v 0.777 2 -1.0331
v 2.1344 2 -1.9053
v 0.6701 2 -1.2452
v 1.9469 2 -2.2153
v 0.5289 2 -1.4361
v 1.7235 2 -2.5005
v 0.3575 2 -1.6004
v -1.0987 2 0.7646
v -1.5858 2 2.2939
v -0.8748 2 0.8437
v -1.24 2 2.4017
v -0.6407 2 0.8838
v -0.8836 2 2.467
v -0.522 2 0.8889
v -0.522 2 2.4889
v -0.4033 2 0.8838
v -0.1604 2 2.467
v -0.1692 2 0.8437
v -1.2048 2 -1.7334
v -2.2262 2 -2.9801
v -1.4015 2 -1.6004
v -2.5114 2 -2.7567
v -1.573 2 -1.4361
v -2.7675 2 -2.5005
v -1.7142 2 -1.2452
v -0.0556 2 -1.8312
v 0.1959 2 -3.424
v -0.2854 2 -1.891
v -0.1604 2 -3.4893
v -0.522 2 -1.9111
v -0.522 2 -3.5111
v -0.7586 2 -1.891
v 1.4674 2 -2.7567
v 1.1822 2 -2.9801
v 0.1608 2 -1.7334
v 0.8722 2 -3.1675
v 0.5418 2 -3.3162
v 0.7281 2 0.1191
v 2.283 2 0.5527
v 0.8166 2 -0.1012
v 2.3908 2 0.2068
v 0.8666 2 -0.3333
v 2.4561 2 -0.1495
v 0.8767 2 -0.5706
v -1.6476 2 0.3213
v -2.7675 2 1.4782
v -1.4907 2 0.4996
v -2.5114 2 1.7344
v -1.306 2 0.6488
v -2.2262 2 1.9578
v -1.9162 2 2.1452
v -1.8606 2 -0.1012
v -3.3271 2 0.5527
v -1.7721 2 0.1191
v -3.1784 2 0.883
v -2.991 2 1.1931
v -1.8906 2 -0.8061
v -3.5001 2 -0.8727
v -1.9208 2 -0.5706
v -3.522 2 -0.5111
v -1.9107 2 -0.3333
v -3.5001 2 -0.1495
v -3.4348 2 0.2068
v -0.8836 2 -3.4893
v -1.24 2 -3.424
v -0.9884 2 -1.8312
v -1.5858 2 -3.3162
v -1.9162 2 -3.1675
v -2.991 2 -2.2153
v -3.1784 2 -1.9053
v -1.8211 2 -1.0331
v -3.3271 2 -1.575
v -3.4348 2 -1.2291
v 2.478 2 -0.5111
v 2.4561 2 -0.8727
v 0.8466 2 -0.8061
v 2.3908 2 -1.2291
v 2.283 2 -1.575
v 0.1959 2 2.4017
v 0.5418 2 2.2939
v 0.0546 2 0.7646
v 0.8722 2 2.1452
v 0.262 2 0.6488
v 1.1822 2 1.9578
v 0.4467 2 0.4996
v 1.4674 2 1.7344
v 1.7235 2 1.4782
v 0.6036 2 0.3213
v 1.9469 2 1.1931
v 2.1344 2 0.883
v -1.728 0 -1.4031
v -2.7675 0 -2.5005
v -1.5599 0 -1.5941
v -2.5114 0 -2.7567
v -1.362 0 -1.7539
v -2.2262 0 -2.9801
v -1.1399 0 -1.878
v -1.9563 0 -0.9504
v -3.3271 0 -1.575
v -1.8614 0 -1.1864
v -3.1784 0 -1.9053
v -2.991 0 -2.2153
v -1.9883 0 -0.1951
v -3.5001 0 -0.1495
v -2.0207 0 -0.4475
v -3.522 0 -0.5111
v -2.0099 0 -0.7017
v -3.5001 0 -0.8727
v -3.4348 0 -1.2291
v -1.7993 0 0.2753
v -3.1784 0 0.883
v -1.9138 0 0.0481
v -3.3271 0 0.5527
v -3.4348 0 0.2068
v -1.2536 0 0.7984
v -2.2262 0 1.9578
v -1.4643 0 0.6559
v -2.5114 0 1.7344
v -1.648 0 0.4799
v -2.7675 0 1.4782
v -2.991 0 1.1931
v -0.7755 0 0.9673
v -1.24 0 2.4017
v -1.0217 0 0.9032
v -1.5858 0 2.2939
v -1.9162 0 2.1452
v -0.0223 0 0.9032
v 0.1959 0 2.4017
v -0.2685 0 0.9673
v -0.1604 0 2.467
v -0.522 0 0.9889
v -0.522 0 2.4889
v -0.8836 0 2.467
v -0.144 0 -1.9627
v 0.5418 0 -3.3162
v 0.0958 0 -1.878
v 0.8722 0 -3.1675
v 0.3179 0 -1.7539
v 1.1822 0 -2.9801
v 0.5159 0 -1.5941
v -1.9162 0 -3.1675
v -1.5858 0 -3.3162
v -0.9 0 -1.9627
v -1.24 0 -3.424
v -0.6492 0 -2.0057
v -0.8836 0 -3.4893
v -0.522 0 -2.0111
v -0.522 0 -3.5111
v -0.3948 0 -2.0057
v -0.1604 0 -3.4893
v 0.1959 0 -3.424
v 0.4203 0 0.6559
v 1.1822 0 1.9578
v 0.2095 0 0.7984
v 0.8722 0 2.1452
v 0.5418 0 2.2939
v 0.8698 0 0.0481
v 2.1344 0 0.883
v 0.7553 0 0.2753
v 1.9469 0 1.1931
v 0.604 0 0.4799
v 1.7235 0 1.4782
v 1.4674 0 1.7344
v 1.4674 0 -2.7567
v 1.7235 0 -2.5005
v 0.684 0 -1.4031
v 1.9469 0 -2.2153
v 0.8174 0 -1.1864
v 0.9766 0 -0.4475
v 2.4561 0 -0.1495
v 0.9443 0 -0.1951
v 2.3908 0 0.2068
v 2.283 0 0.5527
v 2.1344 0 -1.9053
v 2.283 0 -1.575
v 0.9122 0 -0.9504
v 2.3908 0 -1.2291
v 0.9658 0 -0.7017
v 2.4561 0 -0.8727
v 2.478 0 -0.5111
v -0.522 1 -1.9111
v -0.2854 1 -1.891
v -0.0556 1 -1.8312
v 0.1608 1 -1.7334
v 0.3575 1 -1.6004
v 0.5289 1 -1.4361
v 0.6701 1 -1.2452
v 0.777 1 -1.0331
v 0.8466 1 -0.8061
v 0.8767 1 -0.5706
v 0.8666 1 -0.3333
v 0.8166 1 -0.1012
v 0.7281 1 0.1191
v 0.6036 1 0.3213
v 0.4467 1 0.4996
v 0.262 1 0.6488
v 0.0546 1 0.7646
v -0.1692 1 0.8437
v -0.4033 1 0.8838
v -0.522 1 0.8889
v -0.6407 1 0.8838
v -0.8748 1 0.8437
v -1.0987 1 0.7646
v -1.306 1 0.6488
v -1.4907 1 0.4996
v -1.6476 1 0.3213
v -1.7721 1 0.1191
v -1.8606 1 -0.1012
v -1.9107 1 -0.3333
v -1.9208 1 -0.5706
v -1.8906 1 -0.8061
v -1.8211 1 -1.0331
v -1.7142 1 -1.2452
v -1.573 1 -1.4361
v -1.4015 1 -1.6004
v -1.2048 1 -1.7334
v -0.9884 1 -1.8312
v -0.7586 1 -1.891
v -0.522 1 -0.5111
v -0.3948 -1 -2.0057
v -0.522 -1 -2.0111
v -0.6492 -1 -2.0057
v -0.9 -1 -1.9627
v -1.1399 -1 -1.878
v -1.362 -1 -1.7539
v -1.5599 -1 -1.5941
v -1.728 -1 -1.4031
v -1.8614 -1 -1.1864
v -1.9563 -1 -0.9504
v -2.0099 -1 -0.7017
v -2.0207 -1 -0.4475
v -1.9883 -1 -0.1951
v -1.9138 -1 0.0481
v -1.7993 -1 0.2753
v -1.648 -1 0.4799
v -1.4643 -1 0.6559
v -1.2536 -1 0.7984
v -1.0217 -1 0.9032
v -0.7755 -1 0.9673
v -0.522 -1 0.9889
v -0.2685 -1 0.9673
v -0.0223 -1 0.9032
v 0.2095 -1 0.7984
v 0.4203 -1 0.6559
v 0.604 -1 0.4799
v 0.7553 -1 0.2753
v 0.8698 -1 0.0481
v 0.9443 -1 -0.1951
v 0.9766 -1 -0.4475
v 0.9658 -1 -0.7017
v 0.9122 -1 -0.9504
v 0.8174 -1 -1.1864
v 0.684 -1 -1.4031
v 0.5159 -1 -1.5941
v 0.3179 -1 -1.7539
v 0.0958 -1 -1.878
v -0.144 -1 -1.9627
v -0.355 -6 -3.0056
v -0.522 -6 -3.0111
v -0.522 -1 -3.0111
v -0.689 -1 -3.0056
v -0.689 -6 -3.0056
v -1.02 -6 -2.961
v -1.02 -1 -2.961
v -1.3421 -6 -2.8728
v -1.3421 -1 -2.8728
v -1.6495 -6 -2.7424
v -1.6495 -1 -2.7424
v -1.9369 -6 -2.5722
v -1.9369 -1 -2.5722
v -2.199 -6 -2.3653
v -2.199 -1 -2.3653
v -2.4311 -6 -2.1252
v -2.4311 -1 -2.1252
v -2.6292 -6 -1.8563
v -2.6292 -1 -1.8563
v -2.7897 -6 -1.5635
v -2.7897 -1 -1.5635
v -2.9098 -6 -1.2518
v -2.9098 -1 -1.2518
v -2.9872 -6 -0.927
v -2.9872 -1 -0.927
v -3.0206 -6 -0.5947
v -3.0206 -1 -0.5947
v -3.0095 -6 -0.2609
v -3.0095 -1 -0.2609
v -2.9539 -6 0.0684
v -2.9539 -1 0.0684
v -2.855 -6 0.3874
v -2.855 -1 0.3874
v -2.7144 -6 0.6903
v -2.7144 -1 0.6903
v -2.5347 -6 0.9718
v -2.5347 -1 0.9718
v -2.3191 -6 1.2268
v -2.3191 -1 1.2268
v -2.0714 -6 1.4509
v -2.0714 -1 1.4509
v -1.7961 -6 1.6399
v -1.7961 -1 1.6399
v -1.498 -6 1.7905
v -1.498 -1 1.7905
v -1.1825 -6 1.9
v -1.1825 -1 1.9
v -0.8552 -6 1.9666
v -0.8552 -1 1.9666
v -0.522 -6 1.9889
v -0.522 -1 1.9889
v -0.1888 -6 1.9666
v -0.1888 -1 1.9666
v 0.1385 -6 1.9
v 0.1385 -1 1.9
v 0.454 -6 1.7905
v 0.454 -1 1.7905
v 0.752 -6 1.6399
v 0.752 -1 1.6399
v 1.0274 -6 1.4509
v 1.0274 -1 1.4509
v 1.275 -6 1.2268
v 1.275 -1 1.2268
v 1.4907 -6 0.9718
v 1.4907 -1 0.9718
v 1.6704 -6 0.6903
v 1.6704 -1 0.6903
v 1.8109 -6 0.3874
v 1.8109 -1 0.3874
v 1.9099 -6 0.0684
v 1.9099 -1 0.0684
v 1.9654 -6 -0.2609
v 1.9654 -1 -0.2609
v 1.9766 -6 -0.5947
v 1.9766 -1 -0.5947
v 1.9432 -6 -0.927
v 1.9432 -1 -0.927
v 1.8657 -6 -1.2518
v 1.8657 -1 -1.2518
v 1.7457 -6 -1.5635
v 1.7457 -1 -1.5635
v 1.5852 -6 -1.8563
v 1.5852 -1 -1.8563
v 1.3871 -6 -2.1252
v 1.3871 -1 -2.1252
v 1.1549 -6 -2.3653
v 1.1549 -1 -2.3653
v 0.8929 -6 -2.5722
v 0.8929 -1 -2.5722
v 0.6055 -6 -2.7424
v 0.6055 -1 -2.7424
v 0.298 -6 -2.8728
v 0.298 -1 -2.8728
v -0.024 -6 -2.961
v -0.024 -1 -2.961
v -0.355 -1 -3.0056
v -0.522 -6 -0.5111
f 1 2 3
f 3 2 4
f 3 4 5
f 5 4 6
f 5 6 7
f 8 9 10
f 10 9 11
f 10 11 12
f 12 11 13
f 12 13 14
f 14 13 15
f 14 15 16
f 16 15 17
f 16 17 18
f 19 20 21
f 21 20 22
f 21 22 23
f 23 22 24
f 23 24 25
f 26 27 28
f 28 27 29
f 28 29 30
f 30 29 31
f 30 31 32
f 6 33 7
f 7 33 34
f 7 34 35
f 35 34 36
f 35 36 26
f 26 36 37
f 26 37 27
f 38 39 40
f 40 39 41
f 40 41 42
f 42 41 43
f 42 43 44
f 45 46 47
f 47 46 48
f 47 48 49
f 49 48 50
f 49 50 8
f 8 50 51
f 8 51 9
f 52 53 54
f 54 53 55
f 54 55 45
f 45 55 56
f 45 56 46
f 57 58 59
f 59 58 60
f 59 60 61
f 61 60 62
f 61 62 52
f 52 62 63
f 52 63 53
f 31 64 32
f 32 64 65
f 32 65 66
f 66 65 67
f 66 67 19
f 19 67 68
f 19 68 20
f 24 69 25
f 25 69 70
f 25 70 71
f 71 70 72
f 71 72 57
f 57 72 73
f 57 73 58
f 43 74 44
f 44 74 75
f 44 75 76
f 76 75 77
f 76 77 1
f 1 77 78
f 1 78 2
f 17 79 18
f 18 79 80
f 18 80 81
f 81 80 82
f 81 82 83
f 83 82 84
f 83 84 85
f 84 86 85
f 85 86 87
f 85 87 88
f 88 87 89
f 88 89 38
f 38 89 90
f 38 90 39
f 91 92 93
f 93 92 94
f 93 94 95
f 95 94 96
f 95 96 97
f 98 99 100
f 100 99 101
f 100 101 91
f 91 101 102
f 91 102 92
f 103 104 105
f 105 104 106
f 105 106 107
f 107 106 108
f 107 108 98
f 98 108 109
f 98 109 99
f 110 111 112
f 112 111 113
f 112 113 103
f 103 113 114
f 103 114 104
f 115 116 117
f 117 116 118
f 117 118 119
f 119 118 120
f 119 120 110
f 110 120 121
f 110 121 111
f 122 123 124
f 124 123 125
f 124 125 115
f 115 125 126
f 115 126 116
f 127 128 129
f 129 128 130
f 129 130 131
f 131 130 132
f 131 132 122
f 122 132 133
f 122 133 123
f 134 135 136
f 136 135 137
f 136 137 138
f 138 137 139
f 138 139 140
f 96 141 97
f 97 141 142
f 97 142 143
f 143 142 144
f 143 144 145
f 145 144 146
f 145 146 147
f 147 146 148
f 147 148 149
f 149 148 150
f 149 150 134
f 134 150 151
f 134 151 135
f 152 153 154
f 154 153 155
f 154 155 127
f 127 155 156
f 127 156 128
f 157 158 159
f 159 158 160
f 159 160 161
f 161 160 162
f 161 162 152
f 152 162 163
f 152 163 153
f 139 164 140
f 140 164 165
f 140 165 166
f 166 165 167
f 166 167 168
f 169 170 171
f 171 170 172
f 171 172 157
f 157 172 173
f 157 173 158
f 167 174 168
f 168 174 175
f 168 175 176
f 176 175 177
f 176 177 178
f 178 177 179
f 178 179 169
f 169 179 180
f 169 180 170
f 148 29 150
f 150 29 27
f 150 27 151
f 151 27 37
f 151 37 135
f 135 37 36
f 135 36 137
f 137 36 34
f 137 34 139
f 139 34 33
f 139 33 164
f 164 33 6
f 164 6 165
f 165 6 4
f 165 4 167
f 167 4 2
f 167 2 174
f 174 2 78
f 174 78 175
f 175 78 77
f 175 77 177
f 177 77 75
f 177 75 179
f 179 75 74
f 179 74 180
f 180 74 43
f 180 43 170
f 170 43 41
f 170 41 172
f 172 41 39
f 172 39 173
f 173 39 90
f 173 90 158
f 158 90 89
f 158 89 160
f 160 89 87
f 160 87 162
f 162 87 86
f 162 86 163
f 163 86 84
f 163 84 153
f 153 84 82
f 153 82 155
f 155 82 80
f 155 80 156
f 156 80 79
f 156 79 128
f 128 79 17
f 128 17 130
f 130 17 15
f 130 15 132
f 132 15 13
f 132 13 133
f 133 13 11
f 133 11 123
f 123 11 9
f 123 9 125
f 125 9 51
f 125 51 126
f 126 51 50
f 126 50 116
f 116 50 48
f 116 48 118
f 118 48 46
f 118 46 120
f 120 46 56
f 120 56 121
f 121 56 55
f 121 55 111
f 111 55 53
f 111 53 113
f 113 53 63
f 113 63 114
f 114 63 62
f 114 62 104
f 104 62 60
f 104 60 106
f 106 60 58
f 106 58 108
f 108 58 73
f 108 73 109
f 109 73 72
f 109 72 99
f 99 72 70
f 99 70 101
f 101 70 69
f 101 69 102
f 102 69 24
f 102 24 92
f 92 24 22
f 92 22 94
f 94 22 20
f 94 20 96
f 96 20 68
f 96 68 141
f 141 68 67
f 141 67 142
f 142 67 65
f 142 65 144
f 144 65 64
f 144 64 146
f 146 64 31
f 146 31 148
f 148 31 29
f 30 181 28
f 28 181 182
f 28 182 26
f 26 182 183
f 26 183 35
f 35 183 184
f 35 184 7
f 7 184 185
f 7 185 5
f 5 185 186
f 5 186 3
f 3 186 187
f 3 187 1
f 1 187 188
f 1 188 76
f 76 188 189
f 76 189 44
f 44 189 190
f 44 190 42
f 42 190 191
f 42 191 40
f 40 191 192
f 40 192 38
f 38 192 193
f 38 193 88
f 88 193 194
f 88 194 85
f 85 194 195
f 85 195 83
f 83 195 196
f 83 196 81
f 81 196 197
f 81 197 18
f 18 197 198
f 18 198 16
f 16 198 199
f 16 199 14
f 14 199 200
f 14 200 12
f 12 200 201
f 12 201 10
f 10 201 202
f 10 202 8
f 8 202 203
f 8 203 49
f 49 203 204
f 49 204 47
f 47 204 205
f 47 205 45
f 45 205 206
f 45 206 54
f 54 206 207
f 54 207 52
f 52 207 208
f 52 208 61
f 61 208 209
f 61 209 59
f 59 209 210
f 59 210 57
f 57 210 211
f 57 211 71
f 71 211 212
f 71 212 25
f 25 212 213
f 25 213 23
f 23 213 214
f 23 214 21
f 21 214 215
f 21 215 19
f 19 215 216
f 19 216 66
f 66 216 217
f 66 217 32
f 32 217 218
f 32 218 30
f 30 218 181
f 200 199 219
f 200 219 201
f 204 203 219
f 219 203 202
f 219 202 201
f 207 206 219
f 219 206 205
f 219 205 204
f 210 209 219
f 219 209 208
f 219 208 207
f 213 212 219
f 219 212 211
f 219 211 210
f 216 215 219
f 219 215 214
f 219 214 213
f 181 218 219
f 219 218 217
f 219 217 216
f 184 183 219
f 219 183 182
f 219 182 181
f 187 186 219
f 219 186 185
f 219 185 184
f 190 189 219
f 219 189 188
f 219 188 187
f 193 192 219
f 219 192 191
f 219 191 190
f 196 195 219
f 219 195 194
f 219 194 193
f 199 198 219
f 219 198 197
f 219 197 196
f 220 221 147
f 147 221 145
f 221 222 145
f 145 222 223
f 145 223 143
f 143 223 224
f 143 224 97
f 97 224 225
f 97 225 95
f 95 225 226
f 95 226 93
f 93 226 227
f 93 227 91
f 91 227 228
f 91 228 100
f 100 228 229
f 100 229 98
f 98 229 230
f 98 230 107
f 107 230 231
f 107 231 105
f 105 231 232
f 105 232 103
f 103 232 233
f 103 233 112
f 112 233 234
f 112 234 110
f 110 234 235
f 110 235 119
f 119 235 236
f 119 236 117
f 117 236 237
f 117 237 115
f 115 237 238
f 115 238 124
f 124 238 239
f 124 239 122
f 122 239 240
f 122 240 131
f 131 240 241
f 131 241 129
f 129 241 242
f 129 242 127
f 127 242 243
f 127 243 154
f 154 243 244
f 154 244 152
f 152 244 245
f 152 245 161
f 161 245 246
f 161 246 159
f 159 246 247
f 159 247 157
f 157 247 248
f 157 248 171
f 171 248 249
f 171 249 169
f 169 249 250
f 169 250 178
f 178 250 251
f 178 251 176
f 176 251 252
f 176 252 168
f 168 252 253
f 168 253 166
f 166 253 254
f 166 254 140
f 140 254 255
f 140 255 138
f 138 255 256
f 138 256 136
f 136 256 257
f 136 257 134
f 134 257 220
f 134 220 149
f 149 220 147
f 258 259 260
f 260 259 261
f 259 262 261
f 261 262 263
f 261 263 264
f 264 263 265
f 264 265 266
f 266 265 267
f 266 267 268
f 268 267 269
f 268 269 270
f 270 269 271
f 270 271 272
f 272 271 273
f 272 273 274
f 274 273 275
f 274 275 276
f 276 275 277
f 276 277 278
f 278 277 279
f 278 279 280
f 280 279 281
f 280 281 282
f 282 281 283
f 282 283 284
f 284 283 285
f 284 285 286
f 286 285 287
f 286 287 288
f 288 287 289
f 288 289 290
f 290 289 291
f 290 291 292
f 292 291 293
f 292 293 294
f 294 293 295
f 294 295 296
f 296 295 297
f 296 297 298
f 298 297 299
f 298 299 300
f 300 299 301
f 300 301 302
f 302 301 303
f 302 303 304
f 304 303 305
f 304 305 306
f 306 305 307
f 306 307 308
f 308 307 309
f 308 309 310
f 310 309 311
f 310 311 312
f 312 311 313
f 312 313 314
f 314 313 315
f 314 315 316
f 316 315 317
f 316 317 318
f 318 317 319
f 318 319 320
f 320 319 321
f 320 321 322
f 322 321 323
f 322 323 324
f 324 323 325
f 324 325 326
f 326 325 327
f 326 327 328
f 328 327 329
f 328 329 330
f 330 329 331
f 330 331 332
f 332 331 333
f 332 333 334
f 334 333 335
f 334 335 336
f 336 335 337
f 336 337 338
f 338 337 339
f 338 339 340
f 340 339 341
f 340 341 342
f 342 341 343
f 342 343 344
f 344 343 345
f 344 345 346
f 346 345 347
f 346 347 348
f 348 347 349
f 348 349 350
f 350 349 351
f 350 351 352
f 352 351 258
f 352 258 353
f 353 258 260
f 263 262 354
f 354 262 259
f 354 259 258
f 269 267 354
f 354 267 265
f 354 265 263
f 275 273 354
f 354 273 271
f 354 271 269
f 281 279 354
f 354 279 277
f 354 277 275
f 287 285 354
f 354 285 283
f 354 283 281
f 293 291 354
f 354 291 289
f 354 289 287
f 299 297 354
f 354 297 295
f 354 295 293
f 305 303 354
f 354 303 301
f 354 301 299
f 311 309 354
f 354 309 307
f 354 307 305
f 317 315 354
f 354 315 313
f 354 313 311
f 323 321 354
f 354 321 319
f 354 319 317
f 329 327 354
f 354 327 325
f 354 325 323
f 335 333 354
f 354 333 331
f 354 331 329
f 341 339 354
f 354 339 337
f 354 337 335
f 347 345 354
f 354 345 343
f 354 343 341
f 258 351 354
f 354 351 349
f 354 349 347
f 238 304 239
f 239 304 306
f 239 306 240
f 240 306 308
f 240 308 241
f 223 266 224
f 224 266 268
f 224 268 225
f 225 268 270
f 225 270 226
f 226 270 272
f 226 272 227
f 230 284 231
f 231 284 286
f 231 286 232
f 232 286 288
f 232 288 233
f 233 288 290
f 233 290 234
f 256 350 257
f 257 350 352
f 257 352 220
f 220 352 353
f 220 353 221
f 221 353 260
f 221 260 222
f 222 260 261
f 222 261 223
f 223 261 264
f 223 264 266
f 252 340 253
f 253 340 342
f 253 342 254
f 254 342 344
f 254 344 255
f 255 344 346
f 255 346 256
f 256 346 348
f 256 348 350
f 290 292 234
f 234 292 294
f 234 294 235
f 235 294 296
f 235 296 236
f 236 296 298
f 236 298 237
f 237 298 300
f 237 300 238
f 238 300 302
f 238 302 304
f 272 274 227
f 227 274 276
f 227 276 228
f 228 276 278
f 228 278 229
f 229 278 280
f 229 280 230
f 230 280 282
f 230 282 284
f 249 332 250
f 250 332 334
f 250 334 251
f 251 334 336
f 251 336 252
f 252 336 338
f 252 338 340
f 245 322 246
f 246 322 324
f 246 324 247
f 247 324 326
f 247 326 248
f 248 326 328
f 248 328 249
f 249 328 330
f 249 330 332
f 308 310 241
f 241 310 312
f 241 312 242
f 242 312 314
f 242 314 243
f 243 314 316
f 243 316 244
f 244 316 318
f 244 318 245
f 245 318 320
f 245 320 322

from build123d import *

# Parameters (mm, degrees)
SKETCH1_R           = 3
SKETCH1_R_2         = 1.4
BOSS_EXTRUDE1_DEPTH = 2
SKETCH1_3_R         = 1.4
BOSS_EXTRUDE2_DEPTH = 1
SKETCH5_R           = 1.5
BOSS_EXTRUDE3_DEPTH = 1
SKETCH6_R           = 2.5
BOSS_EXTRUDE4_DEPTH = 5


with BuildPart() as part:
    # Sketch1 → Boss-Extrude1 (new body)
    with BuildSketch(Plane(origin=(0, 0, 0), x_dir=(1, 0, 0), z_dir=(0, 1, 0))):
        with Locations((-0.522013312, 0.511138034)):
            Circle(SKETCH1_R)
        with Locations((-0.522013312, 0.511138034)):
            Circle(SKETCH1_R_2, mode=Mode.SUBTRACT)
    extrude(amount=BOSS_EXTRUDE1_DEPTH)

    # Sketch1<3> → Boss-Extrude2 (add)
    with BuildSketch(Plane(origin=(0, 0, 0), x_dir=(1, 0, 0), z_dir=(0, 1, 0))):
        with Locations((-0.522013312, 0.511138034)):
            Circle(SKETCH1_3_R)
    extrude(amount=BOSS_EXTRUDE2_DEPTH)

    # Sketch5 → Boss-Extrude3 (add)
    with BuildSketch(Plane.XZ):
        with Locations((-0.522013312, -0.511138034)):
            Circle(SKETCH5_R)
    extrude(amount=BOSS_EXTRUDE3_DEPTH)

    # Sketch6 → Boss-Extrude4 (add)
    with BuildSketch(Plane.XZ.offset(1)):
        with Locations((-0.522013312, -0.511138034)):
            Circle(SKETCH6_R)
    extrude(amount=BOSS_EXTRUDE4_DEPTH)


solid = part.part
